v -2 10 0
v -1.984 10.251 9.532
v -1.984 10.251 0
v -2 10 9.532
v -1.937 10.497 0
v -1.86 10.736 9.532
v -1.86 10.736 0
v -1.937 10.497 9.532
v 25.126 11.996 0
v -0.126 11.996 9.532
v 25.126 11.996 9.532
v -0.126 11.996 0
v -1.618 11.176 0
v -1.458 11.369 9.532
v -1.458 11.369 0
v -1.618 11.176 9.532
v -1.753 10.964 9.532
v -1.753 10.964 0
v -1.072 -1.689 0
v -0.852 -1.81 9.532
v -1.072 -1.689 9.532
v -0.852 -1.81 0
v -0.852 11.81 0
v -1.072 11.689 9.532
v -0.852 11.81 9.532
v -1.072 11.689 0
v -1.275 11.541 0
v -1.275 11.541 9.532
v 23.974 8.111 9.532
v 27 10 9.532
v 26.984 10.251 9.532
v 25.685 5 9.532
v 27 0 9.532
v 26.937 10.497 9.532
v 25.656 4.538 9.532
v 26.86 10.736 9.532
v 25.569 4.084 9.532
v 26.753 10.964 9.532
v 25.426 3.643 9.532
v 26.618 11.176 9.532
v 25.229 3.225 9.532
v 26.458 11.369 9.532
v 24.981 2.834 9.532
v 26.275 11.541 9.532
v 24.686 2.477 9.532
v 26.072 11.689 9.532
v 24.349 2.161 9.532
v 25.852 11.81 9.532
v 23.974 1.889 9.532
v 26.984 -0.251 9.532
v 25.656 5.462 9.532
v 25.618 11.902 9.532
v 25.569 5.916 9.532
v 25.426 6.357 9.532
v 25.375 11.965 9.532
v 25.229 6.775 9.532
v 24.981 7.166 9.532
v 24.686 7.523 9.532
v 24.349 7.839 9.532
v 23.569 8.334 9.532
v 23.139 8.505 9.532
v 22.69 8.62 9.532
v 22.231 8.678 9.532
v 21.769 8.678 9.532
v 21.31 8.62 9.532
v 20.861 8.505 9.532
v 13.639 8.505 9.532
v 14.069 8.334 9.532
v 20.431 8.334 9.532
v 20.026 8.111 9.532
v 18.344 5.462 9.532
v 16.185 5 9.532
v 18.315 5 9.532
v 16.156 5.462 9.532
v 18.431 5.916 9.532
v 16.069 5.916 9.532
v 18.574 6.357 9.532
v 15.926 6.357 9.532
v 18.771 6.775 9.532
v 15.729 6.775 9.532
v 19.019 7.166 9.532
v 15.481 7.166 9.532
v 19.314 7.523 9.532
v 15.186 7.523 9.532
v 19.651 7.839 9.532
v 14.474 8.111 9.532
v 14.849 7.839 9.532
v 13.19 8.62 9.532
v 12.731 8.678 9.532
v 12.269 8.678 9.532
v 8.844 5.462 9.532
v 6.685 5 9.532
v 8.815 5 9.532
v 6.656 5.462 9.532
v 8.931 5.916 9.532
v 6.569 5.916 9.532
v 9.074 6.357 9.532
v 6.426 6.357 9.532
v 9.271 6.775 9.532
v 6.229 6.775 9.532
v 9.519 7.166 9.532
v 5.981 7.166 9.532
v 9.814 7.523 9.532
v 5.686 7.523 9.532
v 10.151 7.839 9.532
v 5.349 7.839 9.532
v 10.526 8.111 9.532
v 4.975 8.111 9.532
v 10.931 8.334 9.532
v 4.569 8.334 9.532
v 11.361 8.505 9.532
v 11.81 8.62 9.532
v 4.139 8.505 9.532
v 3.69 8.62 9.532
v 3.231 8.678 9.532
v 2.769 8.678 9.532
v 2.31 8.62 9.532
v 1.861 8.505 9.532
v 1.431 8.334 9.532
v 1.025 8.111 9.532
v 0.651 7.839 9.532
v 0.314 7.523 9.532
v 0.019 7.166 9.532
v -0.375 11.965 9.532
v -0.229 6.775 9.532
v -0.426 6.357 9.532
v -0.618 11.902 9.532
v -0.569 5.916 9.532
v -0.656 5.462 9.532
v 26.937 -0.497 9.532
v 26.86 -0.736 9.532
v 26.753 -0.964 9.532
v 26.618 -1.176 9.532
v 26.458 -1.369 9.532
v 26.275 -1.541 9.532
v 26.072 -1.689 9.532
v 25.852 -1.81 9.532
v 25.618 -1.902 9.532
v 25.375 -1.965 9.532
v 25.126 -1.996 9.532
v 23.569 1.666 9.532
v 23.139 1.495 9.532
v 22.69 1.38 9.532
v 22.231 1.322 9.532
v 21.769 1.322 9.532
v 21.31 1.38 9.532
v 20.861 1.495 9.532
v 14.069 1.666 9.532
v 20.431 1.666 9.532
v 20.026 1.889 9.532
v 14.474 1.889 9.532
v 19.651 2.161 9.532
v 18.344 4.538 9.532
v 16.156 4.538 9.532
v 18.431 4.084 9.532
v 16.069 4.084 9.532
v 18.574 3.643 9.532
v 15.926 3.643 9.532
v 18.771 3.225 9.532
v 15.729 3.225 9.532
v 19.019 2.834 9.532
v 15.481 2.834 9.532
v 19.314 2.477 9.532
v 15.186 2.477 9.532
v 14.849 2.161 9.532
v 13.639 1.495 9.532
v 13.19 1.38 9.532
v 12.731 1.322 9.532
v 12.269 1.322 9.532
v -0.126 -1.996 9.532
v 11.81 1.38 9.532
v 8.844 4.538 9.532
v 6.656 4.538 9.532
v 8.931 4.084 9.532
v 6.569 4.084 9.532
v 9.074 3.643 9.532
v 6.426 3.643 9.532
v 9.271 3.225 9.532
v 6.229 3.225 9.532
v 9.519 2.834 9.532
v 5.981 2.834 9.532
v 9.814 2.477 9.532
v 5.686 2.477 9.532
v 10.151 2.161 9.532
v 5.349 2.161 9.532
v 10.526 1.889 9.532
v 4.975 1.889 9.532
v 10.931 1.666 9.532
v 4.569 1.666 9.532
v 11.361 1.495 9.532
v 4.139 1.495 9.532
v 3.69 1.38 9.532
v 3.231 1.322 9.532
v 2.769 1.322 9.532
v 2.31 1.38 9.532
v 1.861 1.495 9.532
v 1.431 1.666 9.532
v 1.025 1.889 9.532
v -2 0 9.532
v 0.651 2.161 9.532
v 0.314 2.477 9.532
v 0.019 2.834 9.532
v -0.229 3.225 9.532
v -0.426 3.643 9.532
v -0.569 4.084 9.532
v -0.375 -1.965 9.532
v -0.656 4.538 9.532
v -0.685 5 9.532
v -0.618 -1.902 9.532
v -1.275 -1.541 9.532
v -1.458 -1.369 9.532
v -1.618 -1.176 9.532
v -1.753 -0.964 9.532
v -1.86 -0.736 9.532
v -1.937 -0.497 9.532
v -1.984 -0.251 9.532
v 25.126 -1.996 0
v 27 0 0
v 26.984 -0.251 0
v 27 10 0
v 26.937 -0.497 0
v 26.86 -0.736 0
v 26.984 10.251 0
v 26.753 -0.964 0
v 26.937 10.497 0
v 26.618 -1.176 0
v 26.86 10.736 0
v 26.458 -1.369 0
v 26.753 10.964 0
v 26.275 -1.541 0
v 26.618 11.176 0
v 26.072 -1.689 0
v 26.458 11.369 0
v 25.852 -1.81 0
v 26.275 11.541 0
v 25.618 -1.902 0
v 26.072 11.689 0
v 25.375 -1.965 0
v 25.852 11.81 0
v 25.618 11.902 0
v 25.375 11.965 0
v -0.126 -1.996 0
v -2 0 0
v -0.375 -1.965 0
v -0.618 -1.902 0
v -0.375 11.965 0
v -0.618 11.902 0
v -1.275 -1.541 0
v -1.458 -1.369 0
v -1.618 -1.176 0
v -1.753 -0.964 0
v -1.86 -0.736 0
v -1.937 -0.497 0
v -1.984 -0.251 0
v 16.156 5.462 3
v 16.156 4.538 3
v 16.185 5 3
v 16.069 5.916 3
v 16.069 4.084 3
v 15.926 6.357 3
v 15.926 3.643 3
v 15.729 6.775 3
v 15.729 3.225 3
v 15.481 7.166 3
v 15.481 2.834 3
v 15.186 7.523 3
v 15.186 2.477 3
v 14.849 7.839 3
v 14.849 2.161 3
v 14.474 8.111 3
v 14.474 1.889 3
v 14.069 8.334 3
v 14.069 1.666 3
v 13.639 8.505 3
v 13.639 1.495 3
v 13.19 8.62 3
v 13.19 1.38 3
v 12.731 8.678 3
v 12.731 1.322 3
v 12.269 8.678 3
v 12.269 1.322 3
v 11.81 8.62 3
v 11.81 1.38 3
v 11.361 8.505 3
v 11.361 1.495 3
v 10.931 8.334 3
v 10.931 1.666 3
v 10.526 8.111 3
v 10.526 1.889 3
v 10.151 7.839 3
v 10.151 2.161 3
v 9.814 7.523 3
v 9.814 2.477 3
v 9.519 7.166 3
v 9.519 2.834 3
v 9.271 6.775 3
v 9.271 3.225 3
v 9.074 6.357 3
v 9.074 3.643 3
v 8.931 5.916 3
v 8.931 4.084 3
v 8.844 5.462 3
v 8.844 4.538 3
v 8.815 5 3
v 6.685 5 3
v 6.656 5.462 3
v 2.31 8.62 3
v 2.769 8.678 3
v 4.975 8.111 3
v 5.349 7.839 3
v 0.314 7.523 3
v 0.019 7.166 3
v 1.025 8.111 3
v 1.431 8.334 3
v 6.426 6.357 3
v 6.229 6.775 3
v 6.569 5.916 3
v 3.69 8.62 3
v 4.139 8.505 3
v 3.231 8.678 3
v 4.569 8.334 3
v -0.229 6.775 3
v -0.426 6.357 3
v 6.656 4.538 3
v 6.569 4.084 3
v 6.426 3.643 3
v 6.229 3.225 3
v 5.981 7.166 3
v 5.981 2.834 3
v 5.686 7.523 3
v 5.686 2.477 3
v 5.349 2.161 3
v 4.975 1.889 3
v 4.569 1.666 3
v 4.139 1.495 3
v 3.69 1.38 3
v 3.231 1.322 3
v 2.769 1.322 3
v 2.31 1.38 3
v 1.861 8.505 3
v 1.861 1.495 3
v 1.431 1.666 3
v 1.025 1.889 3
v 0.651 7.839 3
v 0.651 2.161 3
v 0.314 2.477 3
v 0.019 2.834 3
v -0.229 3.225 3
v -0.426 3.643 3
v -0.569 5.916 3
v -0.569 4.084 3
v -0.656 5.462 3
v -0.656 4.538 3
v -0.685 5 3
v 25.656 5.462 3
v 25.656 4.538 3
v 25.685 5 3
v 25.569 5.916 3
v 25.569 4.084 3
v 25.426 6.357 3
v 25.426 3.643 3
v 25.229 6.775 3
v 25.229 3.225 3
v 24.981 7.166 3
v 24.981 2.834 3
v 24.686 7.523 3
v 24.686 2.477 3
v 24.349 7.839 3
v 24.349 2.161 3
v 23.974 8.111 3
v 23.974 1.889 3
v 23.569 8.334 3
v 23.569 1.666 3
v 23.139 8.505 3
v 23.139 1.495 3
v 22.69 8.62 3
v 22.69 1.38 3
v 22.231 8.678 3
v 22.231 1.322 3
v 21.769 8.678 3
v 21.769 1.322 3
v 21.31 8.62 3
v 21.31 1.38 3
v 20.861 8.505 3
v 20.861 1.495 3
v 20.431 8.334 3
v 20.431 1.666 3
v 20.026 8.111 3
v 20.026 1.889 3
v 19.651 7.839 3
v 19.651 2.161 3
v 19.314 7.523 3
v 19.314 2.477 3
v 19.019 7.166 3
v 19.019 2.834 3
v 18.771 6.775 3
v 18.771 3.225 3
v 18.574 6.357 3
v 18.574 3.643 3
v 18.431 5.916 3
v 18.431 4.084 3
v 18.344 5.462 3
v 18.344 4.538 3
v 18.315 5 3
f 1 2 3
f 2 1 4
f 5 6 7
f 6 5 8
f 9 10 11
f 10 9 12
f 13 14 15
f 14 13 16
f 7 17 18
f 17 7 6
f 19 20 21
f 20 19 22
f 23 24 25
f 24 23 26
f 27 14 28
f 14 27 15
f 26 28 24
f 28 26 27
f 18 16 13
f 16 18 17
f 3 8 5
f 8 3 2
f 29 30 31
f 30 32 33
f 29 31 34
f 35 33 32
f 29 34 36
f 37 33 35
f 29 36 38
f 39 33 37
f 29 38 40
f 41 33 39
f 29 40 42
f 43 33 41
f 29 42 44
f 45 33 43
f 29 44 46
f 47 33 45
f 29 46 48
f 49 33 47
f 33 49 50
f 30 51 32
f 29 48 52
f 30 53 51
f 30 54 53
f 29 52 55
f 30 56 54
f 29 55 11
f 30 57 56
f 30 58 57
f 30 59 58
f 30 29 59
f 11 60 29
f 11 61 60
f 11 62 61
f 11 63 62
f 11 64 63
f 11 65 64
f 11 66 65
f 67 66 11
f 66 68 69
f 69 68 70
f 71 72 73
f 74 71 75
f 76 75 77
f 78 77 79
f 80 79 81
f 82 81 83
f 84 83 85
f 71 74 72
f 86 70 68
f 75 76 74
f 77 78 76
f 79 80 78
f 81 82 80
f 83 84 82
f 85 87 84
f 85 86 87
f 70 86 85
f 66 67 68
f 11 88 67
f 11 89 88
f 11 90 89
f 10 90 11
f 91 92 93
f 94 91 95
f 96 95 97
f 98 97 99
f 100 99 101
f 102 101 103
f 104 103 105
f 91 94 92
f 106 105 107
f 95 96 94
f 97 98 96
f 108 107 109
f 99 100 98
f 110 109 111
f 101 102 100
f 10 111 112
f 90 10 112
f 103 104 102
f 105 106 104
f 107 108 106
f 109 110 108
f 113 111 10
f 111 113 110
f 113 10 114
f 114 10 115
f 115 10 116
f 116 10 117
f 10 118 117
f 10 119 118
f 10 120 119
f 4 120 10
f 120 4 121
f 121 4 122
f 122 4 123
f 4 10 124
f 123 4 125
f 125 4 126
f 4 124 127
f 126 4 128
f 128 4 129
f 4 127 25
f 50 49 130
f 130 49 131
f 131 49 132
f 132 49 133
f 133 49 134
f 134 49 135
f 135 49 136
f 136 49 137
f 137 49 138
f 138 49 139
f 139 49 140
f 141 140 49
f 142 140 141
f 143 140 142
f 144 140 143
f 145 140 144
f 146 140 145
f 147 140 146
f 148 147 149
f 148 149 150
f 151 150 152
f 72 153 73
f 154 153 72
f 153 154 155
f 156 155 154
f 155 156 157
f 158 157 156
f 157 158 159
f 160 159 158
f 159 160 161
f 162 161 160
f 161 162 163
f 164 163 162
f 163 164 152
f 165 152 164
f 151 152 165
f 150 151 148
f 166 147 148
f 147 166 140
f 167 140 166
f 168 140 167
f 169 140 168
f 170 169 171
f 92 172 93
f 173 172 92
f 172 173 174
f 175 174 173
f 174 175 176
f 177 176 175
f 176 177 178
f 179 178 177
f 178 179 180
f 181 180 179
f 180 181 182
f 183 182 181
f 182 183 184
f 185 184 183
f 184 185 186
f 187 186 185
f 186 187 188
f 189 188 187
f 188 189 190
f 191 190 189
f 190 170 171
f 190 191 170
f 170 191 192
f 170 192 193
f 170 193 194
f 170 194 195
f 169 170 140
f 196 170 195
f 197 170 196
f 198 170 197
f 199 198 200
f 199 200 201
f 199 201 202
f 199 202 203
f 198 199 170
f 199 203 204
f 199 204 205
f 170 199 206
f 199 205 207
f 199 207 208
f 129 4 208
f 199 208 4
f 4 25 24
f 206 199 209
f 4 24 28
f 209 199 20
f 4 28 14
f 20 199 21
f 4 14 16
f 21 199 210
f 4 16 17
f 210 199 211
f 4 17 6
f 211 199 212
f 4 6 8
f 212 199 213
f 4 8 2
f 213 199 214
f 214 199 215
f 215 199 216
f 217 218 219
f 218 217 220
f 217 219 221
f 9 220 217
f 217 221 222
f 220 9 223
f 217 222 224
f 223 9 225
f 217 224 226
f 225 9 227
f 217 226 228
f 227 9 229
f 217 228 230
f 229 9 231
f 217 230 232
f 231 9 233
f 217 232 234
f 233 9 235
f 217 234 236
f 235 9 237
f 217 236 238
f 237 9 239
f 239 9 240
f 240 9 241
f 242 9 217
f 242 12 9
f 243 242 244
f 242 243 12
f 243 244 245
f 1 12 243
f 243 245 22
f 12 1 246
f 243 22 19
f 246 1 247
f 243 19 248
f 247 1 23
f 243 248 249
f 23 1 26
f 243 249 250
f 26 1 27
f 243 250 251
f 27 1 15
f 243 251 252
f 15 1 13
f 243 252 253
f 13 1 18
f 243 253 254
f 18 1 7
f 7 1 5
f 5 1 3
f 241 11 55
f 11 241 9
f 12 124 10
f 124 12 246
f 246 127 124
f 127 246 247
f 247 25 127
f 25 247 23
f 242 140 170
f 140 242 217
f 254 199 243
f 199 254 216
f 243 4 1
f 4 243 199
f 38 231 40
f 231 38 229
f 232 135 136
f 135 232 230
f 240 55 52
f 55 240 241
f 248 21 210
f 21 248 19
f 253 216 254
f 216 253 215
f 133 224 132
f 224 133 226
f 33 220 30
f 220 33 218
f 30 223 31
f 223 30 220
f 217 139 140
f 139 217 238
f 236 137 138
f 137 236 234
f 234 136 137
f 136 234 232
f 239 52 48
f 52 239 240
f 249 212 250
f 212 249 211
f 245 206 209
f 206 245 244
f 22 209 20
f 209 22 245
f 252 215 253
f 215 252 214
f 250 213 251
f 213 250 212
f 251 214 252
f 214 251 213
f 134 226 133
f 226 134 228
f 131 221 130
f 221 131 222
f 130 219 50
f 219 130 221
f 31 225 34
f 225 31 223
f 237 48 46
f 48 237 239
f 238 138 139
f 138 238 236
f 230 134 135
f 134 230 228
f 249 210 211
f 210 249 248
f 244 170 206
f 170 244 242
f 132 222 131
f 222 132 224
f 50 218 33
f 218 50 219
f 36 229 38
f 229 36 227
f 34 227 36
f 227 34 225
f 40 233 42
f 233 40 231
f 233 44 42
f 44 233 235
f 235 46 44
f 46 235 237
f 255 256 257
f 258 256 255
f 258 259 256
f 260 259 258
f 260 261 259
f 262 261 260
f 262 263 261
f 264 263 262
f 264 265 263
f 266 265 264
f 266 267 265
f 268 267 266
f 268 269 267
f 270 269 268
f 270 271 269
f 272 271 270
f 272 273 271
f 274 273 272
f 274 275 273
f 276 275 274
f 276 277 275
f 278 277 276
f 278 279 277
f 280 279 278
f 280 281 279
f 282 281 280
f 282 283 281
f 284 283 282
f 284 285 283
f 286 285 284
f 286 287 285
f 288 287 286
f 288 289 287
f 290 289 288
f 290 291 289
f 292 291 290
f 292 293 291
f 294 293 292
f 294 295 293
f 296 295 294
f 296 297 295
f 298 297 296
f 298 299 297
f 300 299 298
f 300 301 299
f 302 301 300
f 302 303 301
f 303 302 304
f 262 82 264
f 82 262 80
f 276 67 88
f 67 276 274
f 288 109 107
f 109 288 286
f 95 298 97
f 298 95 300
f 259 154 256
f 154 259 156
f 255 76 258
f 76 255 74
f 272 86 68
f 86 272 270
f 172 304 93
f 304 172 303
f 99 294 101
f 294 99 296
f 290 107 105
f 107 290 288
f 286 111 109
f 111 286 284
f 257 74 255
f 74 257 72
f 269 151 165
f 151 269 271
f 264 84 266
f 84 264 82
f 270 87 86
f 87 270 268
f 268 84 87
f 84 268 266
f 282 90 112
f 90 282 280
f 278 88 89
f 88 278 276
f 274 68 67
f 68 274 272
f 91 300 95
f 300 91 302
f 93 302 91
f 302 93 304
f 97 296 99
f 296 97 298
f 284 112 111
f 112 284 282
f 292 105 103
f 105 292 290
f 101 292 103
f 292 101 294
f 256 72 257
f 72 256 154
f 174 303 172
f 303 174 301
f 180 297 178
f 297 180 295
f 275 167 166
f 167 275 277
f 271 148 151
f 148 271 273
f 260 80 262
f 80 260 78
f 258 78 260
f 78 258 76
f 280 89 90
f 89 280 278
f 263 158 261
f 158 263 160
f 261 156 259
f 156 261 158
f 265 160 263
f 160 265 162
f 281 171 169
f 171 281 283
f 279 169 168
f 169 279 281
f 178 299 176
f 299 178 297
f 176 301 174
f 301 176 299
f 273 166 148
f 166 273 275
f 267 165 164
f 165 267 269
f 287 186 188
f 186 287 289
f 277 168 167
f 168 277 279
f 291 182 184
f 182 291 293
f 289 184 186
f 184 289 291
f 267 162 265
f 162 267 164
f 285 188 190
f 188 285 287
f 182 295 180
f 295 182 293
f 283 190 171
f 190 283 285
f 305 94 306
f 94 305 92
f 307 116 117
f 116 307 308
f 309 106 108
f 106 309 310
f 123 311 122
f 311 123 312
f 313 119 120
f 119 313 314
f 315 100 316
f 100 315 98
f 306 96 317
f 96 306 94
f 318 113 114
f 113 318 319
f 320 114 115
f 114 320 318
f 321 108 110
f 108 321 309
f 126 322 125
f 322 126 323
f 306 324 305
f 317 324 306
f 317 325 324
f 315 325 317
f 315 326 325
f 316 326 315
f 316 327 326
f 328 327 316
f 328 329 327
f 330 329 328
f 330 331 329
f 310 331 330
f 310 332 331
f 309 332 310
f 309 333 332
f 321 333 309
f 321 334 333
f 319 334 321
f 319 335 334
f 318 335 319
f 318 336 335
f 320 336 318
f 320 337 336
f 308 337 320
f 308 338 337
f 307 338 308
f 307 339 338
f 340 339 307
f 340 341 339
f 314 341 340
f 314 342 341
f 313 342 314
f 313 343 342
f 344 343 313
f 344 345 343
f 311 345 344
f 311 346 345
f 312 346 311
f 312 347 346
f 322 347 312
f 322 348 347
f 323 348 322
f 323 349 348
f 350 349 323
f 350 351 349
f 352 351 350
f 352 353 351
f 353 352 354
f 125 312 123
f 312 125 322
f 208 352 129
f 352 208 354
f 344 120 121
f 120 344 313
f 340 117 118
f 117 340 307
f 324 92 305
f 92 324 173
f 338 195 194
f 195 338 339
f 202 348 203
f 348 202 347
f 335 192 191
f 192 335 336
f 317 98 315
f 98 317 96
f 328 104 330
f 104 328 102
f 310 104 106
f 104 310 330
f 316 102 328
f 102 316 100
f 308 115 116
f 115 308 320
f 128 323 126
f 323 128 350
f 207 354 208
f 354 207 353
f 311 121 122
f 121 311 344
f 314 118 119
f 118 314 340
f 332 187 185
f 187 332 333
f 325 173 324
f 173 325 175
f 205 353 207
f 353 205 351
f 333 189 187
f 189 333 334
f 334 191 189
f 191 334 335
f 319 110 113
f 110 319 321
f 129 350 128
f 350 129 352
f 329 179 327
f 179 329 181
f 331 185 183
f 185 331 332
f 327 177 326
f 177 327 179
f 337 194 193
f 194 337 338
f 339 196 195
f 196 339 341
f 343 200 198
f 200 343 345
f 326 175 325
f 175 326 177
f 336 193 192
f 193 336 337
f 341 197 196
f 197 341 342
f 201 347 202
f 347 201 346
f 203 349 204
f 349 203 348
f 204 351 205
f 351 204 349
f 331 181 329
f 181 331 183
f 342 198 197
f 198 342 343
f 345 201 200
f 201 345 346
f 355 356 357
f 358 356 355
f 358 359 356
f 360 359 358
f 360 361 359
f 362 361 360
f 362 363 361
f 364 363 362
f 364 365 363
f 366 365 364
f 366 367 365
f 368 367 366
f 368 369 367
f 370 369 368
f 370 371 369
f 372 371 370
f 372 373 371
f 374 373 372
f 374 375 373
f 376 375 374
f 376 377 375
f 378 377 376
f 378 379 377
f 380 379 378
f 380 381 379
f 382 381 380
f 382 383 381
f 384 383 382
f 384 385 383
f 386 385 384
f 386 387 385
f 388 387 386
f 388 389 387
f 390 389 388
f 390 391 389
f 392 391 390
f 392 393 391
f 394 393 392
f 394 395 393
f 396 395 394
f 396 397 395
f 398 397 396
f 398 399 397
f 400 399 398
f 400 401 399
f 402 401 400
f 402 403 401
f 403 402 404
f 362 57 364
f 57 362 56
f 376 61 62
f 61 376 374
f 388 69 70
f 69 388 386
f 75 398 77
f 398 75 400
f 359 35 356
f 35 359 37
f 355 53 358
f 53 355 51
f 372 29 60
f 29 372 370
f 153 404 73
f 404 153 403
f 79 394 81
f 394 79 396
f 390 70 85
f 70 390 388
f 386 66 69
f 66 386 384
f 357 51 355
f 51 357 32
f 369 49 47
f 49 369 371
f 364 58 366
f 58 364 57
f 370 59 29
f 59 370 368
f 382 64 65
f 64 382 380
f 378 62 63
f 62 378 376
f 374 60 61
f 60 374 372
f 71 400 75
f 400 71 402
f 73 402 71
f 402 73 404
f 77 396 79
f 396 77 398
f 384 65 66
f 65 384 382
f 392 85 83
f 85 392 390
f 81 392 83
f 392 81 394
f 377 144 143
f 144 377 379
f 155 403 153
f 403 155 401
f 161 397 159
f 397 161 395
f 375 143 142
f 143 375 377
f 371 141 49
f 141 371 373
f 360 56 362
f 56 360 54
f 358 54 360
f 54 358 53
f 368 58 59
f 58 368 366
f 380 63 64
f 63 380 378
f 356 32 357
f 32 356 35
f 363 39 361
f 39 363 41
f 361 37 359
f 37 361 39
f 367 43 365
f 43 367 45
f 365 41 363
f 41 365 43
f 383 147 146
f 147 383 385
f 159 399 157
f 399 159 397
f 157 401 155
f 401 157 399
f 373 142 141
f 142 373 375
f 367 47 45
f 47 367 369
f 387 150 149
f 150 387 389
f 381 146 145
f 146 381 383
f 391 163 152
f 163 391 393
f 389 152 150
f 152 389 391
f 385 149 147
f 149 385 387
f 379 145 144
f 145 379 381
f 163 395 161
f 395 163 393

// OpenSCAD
//one energy cylinder:
//diameter 6.97
//height  13.83

cylinderDiameter = 6.97 + .4;
cylinderHeight = 13.83;
floorThickness = 3;
wallThickness = 3;
length = 25;
echo (length);
width = 10;
height = floorThickness + cylinderHeight * .4;

difference()
{
    $fn=50;
    minkowski()
    {
      cube([length, width, height]);
      cylinder(r=2,h=1);
    }

    translate([length/2, width/2, floorThickness])
        cylinder(cylinderHeight, d=cylinderDiameter);
    translate([wallThickness, width/2, floorThickness])
        cylinder(cylinderHeight, d=cylinderDiameter);
    translate([length - wallThickness, width/2, floorThickness])
        cylinder(cylinderHeight, d=cylinderDiameter);
}
